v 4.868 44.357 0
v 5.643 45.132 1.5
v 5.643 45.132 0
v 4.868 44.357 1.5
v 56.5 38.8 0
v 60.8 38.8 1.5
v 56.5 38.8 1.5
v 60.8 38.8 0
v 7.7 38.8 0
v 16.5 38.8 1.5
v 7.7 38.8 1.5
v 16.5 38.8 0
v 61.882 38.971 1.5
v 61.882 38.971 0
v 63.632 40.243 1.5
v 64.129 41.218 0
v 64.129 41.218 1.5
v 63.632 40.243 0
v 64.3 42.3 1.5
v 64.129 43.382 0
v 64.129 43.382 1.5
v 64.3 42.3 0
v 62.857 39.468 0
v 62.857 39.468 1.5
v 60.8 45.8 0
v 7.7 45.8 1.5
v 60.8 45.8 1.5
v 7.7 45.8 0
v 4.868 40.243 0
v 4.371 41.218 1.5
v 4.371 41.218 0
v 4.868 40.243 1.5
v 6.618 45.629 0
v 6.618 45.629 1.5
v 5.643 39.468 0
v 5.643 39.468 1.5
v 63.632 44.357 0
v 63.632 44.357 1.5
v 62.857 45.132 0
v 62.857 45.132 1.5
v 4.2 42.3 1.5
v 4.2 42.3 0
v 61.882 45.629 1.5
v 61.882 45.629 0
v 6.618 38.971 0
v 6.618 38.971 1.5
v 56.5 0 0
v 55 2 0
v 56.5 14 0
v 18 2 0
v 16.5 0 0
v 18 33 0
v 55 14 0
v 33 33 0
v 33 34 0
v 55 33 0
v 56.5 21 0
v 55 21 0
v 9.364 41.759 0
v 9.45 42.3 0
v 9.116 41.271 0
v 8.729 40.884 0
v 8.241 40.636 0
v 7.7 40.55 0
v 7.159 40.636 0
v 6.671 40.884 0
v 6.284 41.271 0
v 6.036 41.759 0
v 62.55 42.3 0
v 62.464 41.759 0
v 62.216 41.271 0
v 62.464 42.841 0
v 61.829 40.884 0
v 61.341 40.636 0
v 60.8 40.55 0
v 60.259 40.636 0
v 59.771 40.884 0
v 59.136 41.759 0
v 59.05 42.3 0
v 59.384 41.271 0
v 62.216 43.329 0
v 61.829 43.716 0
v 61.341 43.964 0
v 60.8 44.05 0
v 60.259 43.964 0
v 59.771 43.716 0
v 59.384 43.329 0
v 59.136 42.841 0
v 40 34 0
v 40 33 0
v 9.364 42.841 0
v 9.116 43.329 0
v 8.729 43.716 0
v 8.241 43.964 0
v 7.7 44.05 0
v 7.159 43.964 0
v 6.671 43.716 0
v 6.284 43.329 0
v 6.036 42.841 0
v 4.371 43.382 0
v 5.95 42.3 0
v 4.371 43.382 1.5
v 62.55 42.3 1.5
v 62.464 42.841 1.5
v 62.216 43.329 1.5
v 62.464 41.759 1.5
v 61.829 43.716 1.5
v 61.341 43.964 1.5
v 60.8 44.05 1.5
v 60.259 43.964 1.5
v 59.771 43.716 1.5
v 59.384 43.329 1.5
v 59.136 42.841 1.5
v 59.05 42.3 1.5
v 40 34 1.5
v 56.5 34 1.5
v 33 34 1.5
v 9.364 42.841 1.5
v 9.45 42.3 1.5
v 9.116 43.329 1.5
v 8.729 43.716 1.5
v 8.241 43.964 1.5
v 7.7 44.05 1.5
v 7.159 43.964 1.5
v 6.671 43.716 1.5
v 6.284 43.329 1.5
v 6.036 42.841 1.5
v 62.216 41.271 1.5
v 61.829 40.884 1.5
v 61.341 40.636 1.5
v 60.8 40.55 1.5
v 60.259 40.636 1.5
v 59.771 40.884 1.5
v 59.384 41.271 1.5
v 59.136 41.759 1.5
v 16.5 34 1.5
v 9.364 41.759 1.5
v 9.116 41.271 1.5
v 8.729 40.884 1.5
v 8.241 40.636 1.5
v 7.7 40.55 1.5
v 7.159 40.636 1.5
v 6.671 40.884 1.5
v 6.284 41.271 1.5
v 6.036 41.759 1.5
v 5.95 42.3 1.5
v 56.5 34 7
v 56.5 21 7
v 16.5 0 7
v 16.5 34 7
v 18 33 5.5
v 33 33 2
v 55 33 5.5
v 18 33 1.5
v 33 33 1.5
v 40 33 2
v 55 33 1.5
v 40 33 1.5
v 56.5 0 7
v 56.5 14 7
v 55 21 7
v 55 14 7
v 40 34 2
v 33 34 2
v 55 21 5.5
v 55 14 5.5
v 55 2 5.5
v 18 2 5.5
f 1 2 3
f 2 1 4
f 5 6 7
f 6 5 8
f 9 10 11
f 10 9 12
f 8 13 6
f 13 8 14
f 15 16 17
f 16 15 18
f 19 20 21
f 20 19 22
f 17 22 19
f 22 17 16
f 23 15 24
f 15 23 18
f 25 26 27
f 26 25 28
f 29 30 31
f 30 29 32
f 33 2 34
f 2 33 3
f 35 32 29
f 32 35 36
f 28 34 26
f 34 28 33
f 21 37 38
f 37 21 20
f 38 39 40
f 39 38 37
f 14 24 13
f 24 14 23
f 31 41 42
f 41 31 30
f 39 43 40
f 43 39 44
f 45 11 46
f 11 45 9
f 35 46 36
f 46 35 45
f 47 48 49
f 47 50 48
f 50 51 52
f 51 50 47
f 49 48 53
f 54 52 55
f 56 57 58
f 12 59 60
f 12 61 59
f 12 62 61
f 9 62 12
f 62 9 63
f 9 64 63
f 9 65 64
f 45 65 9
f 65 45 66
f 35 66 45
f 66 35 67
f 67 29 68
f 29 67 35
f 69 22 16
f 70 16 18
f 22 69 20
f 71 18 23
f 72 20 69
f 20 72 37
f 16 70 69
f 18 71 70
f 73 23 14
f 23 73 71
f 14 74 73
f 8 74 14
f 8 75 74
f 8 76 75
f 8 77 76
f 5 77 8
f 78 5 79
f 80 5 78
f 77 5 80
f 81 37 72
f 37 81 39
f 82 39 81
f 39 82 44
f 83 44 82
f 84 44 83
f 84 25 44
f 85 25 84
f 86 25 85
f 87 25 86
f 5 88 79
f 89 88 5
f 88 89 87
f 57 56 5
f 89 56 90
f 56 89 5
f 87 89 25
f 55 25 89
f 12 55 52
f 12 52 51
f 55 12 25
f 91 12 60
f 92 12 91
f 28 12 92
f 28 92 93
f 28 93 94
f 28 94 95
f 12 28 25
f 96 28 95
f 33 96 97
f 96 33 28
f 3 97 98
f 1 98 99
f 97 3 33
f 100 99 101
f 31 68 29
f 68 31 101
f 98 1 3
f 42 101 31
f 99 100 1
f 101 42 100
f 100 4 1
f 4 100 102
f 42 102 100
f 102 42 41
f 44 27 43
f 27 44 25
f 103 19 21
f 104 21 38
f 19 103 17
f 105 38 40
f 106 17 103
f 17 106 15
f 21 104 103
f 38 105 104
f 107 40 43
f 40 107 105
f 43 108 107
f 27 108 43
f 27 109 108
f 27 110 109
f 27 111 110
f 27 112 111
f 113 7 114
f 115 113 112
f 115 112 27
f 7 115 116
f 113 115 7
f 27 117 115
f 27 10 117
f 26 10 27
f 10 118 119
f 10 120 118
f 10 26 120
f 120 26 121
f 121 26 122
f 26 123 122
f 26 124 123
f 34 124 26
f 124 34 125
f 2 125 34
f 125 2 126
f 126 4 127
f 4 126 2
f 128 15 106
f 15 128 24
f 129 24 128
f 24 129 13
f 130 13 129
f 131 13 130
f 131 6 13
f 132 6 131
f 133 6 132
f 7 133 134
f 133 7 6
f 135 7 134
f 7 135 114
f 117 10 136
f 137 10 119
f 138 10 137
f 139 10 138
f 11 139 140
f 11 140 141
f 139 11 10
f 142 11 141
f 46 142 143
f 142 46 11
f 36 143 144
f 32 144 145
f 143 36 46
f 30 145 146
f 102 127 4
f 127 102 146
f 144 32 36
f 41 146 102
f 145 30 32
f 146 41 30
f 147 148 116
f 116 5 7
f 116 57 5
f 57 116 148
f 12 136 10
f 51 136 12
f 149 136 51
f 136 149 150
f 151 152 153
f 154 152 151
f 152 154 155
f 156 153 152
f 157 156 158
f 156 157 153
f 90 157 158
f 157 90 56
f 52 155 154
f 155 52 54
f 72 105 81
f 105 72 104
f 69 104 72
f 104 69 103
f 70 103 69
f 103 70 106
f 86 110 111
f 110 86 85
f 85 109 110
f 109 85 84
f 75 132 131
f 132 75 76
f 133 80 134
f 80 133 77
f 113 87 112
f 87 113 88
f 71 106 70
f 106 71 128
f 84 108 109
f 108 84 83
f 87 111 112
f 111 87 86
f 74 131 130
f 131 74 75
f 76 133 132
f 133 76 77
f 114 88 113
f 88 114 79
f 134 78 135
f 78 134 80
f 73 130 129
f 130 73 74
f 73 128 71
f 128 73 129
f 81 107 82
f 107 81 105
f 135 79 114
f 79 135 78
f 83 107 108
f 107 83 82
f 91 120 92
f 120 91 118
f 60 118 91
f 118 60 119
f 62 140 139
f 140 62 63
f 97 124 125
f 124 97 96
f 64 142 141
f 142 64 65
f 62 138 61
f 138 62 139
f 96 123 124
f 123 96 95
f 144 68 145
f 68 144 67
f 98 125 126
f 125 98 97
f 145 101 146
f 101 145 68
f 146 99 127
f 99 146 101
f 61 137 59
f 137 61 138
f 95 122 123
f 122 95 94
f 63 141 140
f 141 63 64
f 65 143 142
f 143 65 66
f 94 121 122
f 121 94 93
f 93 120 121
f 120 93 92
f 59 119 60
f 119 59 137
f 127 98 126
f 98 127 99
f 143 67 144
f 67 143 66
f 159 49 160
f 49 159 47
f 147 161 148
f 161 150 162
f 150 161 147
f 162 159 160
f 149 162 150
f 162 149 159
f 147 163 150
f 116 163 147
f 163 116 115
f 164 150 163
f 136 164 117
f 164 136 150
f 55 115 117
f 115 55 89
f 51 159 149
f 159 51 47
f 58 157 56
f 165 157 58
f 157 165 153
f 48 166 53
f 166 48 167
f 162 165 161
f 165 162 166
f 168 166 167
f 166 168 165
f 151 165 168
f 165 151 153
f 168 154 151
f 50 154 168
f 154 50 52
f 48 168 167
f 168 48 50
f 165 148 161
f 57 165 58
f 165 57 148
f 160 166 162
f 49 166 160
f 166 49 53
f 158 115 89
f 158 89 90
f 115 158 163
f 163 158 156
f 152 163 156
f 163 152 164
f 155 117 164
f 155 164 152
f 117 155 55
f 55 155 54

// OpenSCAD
include <Round-Anything/polyround.scad>

module esc_box(thickness) {
    difference() {
        union() {
        
        difference() {
            union() {
                hull() {
                    translate([60.8, 42.3, 0])
                        cylinder(h = thickness, d=7, $fn=20);
                    translate([7.7, 42.3, 0])
                        cylinder(h = thickness, d=7, $fn=20);
                }
                translate([16.5,33,0]) 
                    cube([40, 6, thickness]);
            }

            translate([60.8, 42.3, 0])
                cylinder(h = thickness, d=3.5, $fn=20);
            translate([7.7, 42.3, 0])
                cylinder(h = thickness, d=3.5, $fn=20);
        }
        
        translate([16.5, 0, 0]) {
            difference() {
                cube([40,34,7]);
                translate([1.5, 2, 0]) {
                    cube([37,31,5.5]);
                }
                translate([38.5,14,0]) {
                    cube([1.5, 7, 7]);
                }
                //translate([40 / 2, 1, 0])
                    //cylinder(h=3, d=1, $fn=20);
            }
        }
        }
        
        translate([33,32.5,0]) {
            cube([7, 1.5, 2]);
        }
    }
}

esc_box(1.5);
